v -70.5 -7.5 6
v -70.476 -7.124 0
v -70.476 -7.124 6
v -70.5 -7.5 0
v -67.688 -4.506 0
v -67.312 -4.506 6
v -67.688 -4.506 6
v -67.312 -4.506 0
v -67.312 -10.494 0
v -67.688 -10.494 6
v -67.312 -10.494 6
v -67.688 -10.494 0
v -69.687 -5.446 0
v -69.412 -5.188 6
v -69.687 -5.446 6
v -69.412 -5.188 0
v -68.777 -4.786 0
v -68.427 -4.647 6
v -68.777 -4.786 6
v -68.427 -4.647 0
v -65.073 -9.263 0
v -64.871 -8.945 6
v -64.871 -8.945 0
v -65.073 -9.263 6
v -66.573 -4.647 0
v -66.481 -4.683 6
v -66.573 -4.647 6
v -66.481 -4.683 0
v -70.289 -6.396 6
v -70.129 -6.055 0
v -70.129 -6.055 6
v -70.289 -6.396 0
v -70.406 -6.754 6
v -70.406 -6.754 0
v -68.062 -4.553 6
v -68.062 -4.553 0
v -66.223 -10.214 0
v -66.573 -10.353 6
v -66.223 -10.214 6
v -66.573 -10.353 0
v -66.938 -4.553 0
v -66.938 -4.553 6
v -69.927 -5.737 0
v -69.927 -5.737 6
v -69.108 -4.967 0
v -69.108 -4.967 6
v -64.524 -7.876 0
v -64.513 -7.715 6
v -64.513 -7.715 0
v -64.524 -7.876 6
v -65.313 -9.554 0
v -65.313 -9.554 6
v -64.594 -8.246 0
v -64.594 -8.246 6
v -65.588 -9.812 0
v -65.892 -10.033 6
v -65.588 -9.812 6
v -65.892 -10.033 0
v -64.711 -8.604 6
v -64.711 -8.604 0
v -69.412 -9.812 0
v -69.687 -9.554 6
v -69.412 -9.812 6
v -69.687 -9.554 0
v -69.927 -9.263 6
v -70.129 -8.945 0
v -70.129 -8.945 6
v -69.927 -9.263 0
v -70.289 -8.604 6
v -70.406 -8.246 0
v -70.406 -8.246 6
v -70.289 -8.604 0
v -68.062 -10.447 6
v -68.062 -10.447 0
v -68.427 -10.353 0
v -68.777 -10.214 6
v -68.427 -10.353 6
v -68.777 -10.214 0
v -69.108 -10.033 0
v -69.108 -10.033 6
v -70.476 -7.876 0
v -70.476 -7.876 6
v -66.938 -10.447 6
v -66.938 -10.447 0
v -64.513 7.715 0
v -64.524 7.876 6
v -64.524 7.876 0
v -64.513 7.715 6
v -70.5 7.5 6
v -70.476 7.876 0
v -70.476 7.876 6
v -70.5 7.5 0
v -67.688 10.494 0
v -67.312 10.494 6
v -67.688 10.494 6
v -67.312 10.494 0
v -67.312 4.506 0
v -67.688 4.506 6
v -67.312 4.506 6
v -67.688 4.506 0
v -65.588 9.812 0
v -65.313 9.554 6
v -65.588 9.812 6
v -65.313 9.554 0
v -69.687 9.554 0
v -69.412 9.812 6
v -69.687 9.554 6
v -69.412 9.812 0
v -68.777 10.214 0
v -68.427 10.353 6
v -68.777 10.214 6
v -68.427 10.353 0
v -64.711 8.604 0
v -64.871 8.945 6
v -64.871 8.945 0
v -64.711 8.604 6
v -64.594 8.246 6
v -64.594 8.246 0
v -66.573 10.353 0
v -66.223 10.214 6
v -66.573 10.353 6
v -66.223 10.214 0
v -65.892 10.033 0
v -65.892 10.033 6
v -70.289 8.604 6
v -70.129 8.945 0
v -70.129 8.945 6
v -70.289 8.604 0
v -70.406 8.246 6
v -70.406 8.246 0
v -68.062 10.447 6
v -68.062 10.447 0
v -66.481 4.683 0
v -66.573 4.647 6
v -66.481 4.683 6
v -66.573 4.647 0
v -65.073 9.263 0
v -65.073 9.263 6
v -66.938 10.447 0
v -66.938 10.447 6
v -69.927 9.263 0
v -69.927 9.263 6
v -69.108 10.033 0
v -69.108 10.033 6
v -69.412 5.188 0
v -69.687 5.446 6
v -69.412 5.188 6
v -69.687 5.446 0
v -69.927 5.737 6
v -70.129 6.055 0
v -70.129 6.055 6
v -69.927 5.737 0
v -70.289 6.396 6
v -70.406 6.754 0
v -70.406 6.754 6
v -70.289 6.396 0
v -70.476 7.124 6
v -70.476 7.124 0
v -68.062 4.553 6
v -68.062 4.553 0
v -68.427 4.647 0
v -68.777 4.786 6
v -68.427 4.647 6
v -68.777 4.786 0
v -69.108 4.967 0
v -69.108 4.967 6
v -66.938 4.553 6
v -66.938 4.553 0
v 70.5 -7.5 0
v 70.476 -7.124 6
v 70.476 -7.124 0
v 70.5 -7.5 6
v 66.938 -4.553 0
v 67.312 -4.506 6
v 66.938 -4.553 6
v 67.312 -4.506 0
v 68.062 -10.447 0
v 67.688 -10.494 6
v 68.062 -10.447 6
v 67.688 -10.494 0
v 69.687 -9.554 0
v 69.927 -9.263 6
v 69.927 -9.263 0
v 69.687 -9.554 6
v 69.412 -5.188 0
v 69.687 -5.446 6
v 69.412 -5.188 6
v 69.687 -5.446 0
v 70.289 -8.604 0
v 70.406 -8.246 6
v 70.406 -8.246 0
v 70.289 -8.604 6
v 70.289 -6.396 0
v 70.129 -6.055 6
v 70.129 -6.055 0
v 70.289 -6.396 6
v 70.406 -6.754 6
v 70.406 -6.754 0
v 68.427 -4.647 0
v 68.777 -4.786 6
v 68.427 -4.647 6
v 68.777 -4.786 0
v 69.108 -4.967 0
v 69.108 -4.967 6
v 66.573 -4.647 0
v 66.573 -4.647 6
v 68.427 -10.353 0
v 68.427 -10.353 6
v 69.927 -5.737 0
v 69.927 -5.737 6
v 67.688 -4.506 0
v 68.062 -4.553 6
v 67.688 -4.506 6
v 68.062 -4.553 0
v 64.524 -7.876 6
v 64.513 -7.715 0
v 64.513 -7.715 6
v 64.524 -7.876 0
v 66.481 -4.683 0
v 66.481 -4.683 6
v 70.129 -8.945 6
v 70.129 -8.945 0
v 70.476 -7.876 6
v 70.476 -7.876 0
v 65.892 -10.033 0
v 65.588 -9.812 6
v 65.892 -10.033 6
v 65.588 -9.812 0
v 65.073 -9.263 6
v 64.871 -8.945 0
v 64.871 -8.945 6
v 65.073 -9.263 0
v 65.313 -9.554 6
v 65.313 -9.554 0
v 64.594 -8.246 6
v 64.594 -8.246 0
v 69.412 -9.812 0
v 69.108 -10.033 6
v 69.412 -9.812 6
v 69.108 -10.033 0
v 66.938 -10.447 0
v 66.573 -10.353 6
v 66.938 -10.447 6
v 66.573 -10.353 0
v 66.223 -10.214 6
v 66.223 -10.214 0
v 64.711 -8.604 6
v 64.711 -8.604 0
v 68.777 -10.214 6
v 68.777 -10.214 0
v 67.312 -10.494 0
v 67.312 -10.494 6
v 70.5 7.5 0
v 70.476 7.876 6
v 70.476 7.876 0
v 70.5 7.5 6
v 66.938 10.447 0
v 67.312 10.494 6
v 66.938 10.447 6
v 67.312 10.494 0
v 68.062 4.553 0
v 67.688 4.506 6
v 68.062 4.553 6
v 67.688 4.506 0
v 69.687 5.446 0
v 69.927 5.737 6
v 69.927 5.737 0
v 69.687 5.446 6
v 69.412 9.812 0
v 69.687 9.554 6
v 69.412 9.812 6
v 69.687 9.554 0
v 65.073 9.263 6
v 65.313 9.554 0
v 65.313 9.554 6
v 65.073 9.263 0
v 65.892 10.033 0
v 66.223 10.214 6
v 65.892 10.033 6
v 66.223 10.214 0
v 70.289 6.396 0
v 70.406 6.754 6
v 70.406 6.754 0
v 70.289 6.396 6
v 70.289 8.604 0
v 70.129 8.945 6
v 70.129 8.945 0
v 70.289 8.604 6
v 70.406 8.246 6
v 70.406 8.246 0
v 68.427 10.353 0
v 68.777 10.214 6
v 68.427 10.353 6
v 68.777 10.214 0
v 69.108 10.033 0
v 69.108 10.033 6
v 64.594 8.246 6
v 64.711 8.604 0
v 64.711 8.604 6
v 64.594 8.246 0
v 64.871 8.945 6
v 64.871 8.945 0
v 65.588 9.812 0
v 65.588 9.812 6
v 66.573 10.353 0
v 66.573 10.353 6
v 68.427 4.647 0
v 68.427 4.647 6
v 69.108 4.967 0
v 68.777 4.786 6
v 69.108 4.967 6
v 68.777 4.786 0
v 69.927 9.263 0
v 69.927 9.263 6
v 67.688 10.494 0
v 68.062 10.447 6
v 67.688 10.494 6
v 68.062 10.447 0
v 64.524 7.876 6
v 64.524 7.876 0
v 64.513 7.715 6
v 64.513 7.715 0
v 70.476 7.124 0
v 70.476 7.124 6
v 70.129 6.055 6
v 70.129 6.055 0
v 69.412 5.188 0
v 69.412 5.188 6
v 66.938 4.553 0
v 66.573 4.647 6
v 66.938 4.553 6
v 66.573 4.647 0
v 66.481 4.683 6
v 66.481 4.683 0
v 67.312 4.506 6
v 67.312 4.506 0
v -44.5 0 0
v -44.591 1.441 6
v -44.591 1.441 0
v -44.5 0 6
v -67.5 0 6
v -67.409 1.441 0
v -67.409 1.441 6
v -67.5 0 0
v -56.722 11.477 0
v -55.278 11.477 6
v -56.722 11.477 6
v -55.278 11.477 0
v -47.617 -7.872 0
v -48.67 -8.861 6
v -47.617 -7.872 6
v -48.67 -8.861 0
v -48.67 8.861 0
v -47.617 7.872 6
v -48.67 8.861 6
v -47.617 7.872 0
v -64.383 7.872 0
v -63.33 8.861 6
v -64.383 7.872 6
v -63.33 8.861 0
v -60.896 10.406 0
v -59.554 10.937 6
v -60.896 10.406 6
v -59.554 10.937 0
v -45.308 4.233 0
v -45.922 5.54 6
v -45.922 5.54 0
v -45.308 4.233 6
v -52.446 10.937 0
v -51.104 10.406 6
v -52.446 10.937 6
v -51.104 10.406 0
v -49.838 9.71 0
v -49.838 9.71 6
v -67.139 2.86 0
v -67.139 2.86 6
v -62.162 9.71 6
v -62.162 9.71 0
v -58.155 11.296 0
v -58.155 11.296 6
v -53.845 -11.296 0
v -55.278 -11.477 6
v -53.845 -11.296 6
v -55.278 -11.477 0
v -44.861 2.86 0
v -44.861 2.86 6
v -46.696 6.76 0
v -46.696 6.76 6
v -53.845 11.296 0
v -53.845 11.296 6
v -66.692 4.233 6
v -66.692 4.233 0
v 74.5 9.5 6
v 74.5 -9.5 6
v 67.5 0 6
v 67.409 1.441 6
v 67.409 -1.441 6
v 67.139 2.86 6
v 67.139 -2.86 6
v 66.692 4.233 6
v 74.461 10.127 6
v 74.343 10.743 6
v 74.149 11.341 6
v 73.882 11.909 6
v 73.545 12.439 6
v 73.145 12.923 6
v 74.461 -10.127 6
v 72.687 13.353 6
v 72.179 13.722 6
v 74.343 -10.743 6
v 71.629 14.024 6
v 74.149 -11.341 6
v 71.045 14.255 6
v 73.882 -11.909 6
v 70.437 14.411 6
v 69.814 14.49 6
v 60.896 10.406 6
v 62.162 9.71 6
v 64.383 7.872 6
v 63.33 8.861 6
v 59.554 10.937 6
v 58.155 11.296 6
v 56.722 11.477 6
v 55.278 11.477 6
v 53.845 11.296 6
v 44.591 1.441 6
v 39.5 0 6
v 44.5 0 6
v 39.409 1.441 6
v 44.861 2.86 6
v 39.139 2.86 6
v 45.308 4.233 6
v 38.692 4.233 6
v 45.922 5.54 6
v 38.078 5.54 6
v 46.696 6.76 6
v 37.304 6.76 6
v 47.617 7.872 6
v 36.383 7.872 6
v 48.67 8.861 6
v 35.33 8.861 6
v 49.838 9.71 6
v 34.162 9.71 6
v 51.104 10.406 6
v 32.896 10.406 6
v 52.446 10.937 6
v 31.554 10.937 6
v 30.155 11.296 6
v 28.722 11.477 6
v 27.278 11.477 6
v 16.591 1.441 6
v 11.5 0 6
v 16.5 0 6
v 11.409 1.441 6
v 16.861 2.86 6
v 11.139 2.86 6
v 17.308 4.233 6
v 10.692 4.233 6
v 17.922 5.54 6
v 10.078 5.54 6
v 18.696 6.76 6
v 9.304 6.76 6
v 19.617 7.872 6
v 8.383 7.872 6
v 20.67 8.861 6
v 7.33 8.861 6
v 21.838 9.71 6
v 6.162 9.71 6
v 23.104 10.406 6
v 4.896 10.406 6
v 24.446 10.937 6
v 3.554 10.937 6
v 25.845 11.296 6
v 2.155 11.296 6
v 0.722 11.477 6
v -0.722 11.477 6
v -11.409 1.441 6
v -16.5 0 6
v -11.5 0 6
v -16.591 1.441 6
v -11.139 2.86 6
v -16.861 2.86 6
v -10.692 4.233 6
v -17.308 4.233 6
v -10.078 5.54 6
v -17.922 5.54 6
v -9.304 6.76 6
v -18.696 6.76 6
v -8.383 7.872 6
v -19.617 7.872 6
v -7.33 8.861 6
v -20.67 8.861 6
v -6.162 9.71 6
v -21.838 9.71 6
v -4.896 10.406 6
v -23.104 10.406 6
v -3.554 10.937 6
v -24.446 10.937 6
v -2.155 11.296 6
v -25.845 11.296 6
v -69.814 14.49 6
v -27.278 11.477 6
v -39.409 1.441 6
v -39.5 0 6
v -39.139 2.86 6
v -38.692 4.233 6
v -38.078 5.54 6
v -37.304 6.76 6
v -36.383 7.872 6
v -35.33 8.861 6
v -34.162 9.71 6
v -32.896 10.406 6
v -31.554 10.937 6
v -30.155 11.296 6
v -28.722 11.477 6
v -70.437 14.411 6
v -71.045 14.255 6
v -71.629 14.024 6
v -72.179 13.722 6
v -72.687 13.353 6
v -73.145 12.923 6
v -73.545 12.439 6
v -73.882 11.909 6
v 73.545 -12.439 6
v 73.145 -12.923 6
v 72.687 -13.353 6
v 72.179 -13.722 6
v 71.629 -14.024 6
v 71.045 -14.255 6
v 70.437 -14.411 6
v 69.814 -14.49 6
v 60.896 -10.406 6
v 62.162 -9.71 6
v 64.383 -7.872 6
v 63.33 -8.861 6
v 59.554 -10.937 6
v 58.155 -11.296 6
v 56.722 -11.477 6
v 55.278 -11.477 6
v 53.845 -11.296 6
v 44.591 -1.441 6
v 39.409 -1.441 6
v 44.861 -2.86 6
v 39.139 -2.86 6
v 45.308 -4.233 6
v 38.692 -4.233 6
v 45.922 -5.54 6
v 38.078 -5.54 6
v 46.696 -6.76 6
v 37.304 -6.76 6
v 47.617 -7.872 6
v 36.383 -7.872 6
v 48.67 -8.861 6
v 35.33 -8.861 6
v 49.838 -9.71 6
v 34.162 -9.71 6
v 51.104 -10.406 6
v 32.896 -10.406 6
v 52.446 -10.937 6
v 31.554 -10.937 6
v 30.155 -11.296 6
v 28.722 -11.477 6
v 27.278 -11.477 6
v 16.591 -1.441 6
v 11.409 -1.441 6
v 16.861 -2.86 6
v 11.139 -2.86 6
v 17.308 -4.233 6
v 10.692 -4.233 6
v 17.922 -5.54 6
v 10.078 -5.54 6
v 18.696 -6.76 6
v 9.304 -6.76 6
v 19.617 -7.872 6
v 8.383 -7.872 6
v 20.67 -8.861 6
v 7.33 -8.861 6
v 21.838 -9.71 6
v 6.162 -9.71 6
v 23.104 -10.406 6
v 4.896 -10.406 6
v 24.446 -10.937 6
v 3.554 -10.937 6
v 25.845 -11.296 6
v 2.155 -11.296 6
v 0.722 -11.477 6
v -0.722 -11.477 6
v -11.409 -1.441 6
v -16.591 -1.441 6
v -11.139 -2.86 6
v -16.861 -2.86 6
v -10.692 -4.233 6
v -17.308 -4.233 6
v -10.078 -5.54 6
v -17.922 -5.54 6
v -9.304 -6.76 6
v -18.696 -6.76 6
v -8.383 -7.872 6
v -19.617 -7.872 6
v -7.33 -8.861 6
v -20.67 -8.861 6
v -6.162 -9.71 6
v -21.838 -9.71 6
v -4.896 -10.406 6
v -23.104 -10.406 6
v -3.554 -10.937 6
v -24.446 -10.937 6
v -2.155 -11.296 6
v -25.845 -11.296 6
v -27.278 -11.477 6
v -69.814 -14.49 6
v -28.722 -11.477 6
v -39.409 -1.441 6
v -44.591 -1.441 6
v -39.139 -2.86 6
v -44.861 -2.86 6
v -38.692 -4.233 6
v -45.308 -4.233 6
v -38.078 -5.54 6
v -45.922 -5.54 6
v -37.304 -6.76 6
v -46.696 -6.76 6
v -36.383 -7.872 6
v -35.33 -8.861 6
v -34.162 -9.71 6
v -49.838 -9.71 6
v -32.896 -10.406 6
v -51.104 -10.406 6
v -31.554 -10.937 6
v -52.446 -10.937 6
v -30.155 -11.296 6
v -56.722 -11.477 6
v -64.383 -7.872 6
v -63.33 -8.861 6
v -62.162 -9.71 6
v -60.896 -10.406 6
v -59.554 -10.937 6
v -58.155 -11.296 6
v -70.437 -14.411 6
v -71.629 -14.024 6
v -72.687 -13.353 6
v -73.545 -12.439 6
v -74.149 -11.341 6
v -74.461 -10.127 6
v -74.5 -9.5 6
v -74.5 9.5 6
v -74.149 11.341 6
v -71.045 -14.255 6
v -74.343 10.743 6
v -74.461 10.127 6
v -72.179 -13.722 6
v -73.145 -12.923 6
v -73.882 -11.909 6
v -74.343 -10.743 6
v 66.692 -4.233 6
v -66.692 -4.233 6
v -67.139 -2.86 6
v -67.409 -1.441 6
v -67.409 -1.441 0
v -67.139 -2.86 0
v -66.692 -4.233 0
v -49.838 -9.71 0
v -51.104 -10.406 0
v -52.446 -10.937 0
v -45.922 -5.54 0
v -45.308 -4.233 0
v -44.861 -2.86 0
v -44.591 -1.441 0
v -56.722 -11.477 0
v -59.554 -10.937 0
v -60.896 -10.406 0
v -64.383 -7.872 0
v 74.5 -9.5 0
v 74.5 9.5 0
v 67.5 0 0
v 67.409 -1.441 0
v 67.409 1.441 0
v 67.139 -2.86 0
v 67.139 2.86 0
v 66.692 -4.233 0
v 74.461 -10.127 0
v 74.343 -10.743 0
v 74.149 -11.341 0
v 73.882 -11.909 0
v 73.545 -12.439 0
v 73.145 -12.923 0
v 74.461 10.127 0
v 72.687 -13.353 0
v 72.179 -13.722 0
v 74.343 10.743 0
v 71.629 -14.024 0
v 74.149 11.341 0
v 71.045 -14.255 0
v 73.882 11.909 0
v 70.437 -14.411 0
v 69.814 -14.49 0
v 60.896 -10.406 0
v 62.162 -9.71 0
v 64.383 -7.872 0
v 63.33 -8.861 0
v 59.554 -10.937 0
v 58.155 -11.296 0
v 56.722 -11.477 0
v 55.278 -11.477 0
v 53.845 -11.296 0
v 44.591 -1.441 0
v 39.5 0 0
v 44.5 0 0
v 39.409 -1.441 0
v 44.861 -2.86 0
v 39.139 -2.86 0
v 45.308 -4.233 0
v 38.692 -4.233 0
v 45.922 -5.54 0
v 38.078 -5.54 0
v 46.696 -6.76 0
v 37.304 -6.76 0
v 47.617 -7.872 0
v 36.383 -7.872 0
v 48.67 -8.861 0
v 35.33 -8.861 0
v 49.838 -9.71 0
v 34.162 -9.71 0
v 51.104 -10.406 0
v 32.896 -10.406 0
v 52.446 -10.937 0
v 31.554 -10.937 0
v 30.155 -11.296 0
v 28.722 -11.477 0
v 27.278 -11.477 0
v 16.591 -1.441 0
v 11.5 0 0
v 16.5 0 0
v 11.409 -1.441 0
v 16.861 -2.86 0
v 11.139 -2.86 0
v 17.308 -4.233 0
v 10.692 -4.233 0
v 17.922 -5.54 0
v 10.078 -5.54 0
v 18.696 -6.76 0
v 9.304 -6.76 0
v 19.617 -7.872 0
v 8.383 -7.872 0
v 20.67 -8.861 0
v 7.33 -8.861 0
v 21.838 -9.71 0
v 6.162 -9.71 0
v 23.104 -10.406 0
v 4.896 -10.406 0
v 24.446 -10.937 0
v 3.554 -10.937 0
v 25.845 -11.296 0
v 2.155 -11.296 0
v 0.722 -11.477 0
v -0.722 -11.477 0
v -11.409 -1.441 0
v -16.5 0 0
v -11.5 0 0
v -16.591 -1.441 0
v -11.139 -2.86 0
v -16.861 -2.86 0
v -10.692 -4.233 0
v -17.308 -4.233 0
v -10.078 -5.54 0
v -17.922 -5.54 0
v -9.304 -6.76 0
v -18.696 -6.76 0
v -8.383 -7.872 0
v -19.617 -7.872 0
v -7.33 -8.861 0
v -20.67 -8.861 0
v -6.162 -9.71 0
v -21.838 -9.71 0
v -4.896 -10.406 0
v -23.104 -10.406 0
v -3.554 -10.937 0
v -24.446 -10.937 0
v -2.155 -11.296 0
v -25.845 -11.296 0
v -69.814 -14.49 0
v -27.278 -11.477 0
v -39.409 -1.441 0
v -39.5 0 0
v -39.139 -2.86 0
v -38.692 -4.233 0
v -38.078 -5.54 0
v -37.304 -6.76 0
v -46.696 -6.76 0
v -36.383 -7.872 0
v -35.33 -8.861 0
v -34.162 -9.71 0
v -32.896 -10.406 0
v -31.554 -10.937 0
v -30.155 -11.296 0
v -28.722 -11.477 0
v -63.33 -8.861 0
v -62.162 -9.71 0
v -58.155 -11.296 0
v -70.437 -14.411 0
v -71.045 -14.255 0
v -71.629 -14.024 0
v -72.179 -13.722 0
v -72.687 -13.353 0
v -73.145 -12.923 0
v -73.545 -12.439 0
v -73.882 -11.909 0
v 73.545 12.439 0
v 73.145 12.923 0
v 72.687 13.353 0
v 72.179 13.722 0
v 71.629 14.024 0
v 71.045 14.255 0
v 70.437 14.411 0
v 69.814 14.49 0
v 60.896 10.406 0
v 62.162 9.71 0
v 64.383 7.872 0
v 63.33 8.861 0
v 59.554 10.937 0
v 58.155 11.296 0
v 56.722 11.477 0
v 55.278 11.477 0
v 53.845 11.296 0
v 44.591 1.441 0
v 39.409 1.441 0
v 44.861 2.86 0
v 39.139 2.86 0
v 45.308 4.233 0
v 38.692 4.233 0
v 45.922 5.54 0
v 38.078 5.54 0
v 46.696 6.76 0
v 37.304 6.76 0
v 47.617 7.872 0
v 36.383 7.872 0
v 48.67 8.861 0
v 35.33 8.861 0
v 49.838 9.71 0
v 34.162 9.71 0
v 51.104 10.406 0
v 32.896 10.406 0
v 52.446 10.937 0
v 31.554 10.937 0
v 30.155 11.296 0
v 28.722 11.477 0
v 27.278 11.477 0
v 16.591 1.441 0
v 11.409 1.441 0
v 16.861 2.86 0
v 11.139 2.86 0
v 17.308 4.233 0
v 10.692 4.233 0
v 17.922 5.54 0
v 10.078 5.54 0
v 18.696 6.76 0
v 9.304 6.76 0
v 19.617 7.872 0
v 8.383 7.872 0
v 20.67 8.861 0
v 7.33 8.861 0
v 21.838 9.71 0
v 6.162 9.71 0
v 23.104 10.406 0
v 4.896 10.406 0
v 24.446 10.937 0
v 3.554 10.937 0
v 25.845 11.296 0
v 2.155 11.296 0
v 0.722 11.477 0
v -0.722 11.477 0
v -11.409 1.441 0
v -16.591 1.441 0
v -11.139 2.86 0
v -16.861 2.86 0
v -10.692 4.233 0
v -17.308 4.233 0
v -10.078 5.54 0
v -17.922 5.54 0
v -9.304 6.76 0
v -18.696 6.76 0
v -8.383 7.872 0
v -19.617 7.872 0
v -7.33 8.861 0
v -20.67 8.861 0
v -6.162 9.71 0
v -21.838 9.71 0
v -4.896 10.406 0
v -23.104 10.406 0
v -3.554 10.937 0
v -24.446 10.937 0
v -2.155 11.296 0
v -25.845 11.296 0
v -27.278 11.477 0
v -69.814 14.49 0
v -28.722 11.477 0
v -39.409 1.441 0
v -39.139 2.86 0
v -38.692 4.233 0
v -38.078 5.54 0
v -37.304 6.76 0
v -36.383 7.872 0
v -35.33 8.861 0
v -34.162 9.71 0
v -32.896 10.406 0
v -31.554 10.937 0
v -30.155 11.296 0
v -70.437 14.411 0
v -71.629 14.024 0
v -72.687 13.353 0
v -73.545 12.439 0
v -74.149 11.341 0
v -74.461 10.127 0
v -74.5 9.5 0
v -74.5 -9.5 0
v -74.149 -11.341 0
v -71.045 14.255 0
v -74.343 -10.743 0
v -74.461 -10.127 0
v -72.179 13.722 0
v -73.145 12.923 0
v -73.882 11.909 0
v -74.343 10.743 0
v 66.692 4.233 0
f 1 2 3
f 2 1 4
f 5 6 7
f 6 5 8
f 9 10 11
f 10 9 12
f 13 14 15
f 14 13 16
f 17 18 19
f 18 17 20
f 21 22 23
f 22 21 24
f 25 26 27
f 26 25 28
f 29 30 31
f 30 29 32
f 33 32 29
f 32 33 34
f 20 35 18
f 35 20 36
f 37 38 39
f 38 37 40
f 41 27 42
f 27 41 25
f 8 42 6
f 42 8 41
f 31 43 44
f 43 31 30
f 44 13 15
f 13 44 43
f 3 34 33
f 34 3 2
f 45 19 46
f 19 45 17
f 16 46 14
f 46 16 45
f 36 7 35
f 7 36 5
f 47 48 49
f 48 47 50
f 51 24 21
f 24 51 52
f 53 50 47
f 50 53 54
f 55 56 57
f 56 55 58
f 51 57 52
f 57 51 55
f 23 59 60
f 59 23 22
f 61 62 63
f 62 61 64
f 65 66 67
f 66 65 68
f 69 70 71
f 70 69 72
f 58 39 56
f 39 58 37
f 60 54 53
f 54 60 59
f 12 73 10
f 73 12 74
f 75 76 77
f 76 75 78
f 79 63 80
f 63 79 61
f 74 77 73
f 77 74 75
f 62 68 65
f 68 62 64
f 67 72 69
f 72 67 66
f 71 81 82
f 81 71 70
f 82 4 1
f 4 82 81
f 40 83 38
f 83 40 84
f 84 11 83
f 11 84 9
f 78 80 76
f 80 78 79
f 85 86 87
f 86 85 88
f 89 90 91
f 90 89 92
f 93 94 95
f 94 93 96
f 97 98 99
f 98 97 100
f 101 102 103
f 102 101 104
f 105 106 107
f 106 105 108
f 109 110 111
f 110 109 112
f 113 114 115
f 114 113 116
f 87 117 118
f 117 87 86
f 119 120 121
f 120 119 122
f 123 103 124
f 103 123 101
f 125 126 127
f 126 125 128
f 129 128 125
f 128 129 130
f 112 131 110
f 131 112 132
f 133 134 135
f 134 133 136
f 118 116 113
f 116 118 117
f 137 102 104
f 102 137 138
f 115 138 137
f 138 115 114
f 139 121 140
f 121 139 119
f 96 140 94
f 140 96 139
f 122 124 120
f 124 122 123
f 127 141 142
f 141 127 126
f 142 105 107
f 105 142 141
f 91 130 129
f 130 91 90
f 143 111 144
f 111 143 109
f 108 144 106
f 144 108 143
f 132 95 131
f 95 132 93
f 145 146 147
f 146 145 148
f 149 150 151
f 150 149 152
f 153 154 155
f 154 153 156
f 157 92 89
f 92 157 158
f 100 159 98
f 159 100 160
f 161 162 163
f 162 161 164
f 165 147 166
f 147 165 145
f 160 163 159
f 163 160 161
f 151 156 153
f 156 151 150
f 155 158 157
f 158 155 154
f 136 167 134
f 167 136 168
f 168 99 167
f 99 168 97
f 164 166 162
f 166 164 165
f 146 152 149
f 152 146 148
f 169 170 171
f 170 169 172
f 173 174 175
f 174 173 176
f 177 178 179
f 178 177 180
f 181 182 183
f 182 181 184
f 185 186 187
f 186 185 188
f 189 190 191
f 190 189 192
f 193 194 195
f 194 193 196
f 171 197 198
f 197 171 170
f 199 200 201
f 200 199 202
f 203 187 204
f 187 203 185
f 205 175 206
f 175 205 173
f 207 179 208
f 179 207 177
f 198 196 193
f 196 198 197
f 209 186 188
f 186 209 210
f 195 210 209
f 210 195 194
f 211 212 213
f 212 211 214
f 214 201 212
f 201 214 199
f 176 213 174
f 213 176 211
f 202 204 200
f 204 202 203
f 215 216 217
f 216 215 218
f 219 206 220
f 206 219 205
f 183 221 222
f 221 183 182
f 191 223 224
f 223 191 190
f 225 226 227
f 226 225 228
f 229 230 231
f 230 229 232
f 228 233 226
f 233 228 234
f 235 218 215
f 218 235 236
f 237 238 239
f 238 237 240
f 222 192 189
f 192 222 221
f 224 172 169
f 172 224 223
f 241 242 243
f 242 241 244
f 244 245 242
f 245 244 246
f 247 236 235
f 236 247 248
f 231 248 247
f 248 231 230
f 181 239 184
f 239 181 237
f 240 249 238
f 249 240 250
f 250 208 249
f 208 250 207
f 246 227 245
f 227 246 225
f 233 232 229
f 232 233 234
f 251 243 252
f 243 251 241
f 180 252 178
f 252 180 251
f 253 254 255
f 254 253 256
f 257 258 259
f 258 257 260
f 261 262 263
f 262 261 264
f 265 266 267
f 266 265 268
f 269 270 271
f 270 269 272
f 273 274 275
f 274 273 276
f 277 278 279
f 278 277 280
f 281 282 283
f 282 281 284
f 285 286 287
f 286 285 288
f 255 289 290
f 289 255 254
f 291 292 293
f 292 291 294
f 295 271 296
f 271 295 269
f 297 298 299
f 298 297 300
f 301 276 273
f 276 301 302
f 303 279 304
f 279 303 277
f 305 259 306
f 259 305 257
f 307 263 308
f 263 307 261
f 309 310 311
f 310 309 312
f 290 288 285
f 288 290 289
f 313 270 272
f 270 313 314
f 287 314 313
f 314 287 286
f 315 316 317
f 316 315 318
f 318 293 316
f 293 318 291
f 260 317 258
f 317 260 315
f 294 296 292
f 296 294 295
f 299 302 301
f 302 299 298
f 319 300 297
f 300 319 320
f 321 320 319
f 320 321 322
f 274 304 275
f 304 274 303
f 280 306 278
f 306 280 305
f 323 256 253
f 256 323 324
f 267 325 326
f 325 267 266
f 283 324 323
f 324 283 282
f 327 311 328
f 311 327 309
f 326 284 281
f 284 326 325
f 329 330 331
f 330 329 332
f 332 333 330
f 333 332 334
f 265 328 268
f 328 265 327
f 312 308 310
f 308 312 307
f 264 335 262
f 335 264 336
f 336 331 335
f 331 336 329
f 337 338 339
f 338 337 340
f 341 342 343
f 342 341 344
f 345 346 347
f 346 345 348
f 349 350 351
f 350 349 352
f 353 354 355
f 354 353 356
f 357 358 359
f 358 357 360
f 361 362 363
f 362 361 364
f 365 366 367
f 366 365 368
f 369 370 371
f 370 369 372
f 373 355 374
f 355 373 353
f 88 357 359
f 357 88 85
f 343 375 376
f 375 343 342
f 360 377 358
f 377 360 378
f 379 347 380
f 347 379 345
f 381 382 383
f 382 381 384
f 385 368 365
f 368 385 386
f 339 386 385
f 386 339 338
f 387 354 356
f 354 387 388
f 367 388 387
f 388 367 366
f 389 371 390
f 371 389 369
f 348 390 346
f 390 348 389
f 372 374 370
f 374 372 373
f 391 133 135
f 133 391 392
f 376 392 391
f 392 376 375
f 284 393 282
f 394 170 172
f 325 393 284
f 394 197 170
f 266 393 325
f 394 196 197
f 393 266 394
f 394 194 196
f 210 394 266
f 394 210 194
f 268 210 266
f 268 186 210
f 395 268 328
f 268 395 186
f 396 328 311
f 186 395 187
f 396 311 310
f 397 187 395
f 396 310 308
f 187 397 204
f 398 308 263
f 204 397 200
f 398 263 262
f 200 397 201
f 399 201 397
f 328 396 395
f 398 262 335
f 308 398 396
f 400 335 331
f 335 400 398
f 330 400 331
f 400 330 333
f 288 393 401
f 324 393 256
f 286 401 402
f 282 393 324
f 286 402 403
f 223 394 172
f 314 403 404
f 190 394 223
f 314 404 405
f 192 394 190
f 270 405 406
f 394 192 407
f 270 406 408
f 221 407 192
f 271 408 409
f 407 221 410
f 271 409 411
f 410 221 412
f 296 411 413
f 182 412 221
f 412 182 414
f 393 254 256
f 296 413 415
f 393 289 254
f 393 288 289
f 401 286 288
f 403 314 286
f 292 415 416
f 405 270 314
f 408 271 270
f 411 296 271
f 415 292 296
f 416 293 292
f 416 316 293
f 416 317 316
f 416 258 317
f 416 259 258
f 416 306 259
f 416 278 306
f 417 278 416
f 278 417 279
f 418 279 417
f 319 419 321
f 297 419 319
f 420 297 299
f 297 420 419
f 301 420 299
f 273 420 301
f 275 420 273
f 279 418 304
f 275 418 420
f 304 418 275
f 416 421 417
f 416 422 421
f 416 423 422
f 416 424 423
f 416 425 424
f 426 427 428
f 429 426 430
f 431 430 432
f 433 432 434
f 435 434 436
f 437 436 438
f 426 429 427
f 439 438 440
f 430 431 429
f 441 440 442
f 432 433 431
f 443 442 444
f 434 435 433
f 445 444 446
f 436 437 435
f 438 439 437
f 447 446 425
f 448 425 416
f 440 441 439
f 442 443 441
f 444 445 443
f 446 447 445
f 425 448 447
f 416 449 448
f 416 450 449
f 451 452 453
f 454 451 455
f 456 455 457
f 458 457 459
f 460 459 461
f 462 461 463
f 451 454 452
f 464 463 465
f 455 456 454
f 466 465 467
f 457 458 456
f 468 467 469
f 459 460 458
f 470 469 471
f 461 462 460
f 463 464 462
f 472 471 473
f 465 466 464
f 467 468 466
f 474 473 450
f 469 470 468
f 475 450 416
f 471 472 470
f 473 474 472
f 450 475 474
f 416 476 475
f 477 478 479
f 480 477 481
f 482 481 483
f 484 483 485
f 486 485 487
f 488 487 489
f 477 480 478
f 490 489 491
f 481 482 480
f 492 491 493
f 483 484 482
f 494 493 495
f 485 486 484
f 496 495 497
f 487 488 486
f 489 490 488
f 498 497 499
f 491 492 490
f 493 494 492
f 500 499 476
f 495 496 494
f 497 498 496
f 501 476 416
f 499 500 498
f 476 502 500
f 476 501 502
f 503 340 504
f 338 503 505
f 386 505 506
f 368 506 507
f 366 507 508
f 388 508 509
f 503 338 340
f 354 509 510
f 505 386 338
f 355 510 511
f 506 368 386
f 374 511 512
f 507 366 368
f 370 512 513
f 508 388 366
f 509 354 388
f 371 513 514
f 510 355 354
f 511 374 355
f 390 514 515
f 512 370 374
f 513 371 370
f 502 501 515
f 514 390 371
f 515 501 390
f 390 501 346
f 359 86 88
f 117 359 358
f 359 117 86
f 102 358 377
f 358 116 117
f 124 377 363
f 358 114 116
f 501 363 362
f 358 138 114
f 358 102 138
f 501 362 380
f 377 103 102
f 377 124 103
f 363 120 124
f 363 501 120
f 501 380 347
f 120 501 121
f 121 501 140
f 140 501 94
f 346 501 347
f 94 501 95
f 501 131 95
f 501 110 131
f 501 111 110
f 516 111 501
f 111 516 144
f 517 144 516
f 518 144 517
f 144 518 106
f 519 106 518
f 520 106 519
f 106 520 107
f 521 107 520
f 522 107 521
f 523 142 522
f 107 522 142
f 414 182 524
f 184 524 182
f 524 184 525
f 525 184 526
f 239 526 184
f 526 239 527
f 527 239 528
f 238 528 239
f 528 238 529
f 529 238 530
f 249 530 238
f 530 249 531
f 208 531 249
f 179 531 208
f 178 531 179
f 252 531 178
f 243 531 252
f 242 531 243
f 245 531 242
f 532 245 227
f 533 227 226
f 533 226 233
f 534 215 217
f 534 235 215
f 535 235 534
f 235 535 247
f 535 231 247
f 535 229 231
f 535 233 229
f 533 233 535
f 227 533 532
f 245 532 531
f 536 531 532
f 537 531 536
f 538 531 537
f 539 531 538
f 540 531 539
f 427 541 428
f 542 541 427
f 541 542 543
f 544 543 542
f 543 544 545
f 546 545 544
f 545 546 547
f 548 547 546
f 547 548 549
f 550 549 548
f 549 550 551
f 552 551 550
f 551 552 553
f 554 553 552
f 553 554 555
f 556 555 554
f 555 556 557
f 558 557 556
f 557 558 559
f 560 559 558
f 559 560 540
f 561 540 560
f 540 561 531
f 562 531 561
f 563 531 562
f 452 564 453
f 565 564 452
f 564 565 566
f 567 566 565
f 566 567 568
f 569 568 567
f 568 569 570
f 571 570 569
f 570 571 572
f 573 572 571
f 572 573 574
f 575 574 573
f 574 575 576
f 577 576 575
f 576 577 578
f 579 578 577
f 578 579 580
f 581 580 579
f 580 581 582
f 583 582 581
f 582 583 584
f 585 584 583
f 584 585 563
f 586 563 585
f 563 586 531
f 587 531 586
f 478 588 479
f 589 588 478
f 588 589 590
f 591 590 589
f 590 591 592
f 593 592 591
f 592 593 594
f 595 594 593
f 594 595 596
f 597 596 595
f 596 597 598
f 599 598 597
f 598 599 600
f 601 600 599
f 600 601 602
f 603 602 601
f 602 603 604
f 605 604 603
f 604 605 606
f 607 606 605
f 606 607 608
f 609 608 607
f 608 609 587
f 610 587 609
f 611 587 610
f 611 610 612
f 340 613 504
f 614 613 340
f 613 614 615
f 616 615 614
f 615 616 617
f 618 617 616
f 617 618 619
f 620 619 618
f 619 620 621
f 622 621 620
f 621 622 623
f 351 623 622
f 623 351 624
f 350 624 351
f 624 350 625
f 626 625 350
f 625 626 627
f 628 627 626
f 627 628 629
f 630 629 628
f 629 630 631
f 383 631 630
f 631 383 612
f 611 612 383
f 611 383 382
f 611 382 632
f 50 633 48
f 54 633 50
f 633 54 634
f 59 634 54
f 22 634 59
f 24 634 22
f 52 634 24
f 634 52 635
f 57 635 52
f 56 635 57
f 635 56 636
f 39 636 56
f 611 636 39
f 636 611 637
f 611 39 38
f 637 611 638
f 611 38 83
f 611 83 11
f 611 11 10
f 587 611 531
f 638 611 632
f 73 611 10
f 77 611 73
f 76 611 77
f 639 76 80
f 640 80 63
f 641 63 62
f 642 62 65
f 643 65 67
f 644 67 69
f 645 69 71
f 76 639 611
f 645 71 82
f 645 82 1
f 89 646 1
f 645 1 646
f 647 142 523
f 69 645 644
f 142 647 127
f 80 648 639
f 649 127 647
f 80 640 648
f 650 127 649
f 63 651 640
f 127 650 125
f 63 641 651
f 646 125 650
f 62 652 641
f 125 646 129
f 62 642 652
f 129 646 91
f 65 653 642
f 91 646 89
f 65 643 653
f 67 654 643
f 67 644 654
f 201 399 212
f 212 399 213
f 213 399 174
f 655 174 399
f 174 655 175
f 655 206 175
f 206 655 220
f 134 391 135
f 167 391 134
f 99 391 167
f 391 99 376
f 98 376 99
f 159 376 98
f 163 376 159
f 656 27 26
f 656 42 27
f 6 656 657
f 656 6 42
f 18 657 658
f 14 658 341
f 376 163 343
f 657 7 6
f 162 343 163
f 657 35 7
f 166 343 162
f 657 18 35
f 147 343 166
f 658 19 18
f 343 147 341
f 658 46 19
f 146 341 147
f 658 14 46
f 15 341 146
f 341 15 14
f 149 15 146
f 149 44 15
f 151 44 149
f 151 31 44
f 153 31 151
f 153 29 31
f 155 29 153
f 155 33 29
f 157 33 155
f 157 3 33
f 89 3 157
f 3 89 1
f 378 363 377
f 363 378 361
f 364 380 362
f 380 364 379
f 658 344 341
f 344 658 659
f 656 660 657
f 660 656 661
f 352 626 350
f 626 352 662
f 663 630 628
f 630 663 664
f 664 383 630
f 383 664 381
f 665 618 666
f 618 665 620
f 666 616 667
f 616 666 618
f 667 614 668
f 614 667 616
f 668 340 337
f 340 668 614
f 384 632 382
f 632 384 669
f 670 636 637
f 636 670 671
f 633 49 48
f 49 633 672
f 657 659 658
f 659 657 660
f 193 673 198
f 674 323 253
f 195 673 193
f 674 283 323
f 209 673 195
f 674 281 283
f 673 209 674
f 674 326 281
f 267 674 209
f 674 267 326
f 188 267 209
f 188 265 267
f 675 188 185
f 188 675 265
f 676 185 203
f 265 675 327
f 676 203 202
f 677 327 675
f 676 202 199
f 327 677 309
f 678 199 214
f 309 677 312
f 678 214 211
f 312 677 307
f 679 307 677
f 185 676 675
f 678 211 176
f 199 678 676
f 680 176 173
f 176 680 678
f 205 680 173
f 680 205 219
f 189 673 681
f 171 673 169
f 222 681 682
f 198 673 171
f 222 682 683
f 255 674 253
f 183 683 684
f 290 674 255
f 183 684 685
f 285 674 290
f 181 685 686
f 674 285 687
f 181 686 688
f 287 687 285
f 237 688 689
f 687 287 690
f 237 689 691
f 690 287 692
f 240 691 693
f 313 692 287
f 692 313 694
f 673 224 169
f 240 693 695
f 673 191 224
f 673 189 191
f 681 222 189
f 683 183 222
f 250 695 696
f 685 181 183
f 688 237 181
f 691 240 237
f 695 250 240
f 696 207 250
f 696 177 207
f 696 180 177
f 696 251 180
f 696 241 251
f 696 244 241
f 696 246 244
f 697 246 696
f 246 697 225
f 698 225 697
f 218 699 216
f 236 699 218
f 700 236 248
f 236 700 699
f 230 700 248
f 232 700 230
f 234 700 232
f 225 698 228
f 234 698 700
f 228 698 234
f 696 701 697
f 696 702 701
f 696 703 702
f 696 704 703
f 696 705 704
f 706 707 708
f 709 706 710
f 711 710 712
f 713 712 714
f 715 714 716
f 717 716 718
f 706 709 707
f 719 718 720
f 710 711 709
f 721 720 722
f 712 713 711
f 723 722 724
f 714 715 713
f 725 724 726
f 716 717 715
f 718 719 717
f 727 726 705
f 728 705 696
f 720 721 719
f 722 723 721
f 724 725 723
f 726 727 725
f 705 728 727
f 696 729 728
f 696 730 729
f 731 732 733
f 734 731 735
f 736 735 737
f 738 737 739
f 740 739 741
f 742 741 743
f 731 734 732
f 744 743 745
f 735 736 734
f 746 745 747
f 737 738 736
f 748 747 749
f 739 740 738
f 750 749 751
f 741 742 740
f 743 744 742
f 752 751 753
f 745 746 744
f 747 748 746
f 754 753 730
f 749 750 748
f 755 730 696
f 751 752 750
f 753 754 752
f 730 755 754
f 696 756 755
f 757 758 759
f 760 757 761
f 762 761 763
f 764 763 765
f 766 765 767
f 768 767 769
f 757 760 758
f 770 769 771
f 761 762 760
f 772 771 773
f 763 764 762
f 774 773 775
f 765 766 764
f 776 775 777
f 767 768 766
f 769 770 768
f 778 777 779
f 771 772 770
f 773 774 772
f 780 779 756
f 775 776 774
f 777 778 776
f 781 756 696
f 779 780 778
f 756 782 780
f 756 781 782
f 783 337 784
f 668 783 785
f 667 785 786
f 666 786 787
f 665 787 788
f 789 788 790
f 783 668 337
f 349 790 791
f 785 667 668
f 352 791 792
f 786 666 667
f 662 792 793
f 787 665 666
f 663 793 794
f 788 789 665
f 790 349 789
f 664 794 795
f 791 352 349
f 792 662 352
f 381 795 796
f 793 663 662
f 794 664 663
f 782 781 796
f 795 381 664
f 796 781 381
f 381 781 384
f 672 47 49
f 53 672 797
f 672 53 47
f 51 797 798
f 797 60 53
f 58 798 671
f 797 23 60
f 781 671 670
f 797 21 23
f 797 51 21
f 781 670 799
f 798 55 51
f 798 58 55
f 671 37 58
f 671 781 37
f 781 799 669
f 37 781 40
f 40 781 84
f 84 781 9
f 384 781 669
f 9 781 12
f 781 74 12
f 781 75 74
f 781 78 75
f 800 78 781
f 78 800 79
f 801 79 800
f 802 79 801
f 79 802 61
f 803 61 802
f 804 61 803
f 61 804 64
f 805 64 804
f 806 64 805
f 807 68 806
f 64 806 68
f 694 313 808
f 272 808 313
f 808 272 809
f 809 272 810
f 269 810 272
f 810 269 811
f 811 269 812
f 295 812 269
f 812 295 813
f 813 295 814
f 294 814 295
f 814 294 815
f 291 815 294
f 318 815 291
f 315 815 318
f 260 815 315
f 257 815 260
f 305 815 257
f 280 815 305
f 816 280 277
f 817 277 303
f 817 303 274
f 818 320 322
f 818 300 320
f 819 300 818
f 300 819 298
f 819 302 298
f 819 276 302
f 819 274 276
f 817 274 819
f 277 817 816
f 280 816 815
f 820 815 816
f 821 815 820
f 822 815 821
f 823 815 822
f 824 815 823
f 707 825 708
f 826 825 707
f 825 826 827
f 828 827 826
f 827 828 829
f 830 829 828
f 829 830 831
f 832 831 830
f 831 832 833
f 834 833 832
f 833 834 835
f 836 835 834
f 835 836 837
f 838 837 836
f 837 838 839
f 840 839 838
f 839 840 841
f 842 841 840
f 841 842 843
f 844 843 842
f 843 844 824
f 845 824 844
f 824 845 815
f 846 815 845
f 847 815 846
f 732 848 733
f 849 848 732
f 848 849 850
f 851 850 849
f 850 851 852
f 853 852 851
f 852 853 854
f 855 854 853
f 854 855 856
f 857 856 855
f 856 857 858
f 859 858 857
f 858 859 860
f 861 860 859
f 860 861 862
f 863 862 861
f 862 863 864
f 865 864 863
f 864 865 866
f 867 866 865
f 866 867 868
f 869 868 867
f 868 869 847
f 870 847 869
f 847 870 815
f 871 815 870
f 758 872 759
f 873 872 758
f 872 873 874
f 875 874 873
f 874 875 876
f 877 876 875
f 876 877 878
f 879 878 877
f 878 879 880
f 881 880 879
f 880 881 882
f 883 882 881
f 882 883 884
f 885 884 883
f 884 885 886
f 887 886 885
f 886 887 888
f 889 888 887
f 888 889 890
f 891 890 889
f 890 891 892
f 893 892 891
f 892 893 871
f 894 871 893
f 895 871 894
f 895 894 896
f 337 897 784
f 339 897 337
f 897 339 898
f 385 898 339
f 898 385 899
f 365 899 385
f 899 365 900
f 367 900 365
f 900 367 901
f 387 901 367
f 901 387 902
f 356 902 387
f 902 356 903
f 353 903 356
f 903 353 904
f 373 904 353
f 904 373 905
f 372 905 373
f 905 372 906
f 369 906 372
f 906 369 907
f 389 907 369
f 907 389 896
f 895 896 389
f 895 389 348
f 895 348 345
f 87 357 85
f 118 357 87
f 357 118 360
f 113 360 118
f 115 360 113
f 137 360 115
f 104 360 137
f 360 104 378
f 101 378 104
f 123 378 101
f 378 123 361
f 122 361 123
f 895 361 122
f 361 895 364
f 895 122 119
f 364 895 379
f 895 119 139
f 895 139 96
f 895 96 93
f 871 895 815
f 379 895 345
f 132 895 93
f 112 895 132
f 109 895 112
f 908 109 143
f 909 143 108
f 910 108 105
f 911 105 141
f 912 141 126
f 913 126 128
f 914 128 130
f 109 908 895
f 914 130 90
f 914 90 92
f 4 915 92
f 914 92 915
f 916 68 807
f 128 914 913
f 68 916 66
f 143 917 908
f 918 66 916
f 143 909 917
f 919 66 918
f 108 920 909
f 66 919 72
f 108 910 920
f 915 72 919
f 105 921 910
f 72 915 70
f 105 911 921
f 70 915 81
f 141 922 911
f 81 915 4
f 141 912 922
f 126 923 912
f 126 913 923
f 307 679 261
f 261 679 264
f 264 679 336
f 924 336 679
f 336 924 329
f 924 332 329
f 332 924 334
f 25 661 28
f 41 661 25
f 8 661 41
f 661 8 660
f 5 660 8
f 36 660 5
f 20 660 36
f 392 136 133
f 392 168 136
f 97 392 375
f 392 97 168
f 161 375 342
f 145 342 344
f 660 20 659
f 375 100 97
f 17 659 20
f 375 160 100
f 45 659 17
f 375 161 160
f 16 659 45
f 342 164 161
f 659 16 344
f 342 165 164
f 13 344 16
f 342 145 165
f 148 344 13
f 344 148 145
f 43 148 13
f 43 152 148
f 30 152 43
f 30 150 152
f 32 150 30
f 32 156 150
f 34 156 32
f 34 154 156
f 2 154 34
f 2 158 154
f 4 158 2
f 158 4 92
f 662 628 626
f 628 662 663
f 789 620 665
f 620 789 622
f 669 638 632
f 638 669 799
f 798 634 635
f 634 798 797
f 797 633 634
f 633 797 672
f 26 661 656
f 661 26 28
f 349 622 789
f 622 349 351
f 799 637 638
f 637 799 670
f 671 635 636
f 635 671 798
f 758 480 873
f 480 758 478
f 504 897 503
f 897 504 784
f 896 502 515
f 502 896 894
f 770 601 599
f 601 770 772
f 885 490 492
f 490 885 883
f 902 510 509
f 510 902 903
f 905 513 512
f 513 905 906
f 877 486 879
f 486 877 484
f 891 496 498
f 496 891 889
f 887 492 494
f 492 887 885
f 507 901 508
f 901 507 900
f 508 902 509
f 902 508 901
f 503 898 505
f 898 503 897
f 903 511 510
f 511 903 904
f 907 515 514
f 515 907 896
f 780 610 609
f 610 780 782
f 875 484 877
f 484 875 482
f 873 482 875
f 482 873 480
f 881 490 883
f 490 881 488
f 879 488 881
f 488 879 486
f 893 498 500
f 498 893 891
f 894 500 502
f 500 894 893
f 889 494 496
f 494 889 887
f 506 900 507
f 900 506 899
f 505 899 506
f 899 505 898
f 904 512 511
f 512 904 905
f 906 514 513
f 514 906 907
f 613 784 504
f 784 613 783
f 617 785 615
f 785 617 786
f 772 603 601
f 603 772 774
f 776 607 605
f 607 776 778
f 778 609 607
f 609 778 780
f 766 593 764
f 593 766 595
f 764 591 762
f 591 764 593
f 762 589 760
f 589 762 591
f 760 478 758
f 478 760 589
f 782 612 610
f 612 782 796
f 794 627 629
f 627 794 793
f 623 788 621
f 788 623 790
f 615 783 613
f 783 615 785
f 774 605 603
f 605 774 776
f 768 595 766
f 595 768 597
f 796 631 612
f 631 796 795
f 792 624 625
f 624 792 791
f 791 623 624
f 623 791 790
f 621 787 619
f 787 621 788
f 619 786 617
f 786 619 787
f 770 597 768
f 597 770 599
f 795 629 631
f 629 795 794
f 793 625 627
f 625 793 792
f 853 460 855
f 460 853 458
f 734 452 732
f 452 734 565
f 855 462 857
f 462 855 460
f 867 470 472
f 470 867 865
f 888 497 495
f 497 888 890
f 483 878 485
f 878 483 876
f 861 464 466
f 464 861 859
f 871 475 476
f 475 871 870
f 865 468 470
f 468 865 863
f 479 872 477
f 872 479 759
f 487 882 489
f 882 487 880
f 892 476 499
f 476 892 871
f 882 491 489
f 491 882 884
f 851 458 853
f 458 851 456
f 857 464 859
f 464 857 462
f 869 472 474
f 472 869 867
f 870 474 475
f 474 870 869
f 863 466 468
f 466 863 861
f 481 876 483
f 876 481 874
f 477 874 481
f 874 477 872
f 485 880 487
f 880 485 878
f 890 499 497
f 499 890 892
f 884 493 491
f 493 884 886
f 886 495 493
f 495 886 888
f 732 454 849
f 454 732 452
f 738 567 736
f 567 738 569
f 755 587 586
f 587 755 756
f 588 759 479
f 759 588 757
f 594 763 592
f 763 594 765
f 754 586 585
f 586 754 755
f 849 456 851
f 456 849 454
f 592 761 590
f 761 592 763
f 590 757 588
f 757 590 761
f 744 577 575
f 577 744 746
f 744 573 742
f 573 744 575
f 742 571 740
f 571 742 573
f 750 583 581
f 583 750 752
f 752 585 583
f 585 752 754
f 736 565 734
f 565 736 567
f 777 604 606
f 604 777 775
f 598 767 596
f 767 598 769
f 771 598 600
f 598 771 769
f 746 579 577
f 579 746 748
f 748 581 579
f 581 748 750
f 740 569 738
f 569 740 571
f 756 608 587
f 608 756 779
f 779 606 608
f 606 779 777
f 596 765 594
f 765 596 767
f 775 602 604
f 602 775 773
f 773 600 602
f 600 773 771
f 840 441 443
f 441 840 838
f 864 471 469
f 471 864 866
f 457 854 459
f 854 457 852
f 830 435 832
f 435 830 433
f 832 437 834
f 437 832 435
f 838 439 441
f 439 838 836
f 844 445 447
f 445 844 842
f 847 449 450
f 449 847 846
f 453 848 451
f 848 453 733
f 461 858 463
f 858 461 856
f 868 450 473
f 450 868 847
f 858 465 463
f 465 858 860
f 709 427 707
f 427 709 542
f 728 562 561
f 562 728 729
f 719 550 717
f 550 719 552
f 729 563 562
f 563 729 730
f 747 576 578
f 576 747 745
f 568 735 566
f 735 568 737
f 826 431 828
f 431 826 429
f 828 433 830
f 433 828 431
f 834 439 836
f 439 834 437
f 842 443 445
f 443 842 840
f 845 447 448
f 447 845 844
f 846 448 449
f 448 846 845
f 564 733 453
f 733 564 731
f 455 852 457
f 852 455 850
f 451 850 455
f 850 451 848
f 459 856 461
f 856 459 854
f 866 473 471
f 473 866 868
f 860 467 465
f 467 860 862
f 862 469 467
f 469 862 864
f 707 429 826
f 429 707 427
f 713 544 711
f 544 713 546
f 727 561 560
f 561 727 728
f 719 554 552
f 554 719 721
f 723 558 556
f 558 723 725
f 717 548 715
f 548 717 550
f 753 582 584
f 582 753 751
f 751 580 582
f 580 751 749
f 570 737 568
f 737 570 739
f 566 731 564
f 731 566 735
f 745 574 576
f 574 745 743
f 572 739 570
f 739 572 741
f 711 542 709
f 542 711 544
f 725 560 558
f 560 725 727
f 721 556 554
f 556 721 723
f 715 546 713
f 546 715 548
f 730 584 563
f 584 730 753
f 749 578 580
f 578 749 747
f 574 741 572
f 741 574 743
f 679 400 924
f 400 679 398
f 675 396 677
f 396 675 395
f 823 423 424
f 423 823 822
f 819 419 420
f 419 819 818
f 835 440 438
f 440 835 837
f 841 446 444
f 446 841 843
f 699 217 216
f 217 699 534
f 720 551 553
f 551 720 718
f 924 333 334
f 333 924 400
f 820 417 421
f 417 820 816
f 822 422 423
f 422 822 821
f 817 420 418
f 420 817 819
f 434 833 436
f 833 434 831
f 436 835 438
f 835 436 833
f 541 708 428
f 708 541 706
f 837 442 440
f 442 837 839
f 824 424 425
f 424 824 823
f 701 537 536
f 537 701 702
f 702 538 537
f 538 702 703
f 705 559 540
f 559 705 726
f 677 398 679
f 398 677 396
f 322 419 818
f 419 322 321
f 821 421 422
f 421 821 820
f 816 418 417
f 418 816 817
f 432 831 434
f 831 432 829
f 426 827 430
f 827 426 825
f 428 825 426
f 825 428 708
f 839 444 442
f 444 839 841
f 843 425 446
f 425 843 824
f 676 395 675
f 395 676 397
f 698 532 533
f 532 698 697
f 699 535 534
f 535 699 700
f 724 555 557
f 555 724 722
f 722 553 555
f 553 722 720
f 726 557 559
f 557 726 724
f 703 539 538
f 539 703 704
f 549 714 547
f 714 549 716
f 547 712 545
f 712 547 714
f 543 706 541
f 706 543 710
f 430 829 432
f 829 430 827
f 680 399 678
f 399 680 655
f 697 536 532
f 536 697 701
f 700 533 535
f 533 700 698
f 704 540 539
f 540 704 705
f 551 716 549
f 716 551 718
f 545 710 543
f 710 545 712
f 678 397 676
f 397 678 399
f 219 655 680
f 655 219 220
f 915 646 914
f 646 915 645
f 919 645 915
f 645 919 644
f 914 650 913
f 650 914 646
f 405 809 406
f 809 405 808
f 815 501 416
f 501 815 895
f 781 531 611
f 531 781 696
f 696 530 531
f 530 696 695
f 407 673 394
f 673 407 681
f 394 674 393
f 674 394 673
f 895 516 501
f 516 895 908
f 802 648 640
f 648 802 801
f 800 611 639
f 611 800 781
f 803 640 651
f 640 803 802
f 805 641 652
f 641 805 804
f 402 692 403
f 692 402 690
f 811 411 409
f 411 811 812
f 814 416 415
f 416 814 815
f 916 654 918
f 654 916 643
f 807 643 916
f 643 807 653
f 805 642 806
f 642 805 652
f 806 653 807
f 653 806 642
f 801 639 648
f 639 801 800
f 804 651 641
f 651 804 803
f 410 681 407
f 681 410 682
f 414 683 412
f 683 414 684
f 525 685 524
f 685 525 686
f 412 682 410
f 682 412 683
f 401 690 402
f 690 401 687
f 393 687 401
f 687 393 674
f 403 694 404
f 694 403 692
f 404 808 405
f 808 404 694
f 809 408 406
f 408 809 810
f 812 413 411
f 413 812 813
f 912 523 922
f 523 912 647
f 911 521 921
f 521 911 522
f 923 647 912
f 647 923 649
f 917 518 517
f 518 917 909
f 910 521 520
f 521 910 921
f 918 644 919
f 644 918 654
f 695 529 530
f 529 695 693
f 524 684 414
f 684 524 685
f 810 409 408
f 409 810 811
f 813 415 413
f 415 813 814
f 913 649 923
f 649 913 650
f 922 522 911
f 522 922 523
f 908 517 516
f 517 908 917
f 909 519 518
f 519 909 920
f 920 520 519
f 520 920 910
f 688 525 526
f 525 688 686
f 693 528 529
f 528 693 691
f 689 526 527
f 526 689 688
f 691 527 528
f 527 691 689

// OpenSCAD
$fn = 50;


difference() {
	union() {
		hull() {
			translate(v = [-69.5000000000, 9.5000000000, 0]) {
				cylinder(h = 6, r = 5);
			}
			translate(v = [69.5000000000, 9.5000000000, 0]) {
				cylinder(h = 6, r = 5);
			}
			translate(v = [-69.5000000000, -9.5000000000, 0]) {
				cylinder(h = 6, r = 5);
			}
			translate(v = [69.5000000000, -9.5000000000, 0]) {
				cylinder(h = 6, r = 5);
			}
		}
	}
	union() {
		#translate(v = [-67.5000000000, -7.5000000000, -100.0000000000]) {
			cylinder(h = 200, r = 3.0000000000);
		}
		#translate(v = [-67.5000000000, 7.5000000000, -100.0000000000]) {
			cylinder(h = 200, r = 3.0000000000);
		}
		#translate(v = [67.5000000000, -7.5000000000, -100.0000000000]) {
			cylinder(h = 200, r = 3.0000000000);
		}
		#translate(v = [67.5000000000, 7.5000000000, -100.0000000000]) {
			cylinder(h = 200, r = 3.0000000000);
		}
		#translate(v = [-56.0000000000, 0, 0]) {
			cylinder(h = 6, r = 11.5000000000);
		}
		#translate(v = [-28.0000000000, 0, 0]) {
			cylinder(h = 6, r = 11.5000000000);
		}
		#cylinder(h = 6, r = 11.5000000000);
		#translate(v = [28.0000000000, 0, 0]) {
			cylinder(h = 6, r = 11.5000000000);
		}
		#translate(v = [56.0000000000, 0, 0]) {
			cylinder(h = 6, r = 11.5000000000);
		}
	}
}
